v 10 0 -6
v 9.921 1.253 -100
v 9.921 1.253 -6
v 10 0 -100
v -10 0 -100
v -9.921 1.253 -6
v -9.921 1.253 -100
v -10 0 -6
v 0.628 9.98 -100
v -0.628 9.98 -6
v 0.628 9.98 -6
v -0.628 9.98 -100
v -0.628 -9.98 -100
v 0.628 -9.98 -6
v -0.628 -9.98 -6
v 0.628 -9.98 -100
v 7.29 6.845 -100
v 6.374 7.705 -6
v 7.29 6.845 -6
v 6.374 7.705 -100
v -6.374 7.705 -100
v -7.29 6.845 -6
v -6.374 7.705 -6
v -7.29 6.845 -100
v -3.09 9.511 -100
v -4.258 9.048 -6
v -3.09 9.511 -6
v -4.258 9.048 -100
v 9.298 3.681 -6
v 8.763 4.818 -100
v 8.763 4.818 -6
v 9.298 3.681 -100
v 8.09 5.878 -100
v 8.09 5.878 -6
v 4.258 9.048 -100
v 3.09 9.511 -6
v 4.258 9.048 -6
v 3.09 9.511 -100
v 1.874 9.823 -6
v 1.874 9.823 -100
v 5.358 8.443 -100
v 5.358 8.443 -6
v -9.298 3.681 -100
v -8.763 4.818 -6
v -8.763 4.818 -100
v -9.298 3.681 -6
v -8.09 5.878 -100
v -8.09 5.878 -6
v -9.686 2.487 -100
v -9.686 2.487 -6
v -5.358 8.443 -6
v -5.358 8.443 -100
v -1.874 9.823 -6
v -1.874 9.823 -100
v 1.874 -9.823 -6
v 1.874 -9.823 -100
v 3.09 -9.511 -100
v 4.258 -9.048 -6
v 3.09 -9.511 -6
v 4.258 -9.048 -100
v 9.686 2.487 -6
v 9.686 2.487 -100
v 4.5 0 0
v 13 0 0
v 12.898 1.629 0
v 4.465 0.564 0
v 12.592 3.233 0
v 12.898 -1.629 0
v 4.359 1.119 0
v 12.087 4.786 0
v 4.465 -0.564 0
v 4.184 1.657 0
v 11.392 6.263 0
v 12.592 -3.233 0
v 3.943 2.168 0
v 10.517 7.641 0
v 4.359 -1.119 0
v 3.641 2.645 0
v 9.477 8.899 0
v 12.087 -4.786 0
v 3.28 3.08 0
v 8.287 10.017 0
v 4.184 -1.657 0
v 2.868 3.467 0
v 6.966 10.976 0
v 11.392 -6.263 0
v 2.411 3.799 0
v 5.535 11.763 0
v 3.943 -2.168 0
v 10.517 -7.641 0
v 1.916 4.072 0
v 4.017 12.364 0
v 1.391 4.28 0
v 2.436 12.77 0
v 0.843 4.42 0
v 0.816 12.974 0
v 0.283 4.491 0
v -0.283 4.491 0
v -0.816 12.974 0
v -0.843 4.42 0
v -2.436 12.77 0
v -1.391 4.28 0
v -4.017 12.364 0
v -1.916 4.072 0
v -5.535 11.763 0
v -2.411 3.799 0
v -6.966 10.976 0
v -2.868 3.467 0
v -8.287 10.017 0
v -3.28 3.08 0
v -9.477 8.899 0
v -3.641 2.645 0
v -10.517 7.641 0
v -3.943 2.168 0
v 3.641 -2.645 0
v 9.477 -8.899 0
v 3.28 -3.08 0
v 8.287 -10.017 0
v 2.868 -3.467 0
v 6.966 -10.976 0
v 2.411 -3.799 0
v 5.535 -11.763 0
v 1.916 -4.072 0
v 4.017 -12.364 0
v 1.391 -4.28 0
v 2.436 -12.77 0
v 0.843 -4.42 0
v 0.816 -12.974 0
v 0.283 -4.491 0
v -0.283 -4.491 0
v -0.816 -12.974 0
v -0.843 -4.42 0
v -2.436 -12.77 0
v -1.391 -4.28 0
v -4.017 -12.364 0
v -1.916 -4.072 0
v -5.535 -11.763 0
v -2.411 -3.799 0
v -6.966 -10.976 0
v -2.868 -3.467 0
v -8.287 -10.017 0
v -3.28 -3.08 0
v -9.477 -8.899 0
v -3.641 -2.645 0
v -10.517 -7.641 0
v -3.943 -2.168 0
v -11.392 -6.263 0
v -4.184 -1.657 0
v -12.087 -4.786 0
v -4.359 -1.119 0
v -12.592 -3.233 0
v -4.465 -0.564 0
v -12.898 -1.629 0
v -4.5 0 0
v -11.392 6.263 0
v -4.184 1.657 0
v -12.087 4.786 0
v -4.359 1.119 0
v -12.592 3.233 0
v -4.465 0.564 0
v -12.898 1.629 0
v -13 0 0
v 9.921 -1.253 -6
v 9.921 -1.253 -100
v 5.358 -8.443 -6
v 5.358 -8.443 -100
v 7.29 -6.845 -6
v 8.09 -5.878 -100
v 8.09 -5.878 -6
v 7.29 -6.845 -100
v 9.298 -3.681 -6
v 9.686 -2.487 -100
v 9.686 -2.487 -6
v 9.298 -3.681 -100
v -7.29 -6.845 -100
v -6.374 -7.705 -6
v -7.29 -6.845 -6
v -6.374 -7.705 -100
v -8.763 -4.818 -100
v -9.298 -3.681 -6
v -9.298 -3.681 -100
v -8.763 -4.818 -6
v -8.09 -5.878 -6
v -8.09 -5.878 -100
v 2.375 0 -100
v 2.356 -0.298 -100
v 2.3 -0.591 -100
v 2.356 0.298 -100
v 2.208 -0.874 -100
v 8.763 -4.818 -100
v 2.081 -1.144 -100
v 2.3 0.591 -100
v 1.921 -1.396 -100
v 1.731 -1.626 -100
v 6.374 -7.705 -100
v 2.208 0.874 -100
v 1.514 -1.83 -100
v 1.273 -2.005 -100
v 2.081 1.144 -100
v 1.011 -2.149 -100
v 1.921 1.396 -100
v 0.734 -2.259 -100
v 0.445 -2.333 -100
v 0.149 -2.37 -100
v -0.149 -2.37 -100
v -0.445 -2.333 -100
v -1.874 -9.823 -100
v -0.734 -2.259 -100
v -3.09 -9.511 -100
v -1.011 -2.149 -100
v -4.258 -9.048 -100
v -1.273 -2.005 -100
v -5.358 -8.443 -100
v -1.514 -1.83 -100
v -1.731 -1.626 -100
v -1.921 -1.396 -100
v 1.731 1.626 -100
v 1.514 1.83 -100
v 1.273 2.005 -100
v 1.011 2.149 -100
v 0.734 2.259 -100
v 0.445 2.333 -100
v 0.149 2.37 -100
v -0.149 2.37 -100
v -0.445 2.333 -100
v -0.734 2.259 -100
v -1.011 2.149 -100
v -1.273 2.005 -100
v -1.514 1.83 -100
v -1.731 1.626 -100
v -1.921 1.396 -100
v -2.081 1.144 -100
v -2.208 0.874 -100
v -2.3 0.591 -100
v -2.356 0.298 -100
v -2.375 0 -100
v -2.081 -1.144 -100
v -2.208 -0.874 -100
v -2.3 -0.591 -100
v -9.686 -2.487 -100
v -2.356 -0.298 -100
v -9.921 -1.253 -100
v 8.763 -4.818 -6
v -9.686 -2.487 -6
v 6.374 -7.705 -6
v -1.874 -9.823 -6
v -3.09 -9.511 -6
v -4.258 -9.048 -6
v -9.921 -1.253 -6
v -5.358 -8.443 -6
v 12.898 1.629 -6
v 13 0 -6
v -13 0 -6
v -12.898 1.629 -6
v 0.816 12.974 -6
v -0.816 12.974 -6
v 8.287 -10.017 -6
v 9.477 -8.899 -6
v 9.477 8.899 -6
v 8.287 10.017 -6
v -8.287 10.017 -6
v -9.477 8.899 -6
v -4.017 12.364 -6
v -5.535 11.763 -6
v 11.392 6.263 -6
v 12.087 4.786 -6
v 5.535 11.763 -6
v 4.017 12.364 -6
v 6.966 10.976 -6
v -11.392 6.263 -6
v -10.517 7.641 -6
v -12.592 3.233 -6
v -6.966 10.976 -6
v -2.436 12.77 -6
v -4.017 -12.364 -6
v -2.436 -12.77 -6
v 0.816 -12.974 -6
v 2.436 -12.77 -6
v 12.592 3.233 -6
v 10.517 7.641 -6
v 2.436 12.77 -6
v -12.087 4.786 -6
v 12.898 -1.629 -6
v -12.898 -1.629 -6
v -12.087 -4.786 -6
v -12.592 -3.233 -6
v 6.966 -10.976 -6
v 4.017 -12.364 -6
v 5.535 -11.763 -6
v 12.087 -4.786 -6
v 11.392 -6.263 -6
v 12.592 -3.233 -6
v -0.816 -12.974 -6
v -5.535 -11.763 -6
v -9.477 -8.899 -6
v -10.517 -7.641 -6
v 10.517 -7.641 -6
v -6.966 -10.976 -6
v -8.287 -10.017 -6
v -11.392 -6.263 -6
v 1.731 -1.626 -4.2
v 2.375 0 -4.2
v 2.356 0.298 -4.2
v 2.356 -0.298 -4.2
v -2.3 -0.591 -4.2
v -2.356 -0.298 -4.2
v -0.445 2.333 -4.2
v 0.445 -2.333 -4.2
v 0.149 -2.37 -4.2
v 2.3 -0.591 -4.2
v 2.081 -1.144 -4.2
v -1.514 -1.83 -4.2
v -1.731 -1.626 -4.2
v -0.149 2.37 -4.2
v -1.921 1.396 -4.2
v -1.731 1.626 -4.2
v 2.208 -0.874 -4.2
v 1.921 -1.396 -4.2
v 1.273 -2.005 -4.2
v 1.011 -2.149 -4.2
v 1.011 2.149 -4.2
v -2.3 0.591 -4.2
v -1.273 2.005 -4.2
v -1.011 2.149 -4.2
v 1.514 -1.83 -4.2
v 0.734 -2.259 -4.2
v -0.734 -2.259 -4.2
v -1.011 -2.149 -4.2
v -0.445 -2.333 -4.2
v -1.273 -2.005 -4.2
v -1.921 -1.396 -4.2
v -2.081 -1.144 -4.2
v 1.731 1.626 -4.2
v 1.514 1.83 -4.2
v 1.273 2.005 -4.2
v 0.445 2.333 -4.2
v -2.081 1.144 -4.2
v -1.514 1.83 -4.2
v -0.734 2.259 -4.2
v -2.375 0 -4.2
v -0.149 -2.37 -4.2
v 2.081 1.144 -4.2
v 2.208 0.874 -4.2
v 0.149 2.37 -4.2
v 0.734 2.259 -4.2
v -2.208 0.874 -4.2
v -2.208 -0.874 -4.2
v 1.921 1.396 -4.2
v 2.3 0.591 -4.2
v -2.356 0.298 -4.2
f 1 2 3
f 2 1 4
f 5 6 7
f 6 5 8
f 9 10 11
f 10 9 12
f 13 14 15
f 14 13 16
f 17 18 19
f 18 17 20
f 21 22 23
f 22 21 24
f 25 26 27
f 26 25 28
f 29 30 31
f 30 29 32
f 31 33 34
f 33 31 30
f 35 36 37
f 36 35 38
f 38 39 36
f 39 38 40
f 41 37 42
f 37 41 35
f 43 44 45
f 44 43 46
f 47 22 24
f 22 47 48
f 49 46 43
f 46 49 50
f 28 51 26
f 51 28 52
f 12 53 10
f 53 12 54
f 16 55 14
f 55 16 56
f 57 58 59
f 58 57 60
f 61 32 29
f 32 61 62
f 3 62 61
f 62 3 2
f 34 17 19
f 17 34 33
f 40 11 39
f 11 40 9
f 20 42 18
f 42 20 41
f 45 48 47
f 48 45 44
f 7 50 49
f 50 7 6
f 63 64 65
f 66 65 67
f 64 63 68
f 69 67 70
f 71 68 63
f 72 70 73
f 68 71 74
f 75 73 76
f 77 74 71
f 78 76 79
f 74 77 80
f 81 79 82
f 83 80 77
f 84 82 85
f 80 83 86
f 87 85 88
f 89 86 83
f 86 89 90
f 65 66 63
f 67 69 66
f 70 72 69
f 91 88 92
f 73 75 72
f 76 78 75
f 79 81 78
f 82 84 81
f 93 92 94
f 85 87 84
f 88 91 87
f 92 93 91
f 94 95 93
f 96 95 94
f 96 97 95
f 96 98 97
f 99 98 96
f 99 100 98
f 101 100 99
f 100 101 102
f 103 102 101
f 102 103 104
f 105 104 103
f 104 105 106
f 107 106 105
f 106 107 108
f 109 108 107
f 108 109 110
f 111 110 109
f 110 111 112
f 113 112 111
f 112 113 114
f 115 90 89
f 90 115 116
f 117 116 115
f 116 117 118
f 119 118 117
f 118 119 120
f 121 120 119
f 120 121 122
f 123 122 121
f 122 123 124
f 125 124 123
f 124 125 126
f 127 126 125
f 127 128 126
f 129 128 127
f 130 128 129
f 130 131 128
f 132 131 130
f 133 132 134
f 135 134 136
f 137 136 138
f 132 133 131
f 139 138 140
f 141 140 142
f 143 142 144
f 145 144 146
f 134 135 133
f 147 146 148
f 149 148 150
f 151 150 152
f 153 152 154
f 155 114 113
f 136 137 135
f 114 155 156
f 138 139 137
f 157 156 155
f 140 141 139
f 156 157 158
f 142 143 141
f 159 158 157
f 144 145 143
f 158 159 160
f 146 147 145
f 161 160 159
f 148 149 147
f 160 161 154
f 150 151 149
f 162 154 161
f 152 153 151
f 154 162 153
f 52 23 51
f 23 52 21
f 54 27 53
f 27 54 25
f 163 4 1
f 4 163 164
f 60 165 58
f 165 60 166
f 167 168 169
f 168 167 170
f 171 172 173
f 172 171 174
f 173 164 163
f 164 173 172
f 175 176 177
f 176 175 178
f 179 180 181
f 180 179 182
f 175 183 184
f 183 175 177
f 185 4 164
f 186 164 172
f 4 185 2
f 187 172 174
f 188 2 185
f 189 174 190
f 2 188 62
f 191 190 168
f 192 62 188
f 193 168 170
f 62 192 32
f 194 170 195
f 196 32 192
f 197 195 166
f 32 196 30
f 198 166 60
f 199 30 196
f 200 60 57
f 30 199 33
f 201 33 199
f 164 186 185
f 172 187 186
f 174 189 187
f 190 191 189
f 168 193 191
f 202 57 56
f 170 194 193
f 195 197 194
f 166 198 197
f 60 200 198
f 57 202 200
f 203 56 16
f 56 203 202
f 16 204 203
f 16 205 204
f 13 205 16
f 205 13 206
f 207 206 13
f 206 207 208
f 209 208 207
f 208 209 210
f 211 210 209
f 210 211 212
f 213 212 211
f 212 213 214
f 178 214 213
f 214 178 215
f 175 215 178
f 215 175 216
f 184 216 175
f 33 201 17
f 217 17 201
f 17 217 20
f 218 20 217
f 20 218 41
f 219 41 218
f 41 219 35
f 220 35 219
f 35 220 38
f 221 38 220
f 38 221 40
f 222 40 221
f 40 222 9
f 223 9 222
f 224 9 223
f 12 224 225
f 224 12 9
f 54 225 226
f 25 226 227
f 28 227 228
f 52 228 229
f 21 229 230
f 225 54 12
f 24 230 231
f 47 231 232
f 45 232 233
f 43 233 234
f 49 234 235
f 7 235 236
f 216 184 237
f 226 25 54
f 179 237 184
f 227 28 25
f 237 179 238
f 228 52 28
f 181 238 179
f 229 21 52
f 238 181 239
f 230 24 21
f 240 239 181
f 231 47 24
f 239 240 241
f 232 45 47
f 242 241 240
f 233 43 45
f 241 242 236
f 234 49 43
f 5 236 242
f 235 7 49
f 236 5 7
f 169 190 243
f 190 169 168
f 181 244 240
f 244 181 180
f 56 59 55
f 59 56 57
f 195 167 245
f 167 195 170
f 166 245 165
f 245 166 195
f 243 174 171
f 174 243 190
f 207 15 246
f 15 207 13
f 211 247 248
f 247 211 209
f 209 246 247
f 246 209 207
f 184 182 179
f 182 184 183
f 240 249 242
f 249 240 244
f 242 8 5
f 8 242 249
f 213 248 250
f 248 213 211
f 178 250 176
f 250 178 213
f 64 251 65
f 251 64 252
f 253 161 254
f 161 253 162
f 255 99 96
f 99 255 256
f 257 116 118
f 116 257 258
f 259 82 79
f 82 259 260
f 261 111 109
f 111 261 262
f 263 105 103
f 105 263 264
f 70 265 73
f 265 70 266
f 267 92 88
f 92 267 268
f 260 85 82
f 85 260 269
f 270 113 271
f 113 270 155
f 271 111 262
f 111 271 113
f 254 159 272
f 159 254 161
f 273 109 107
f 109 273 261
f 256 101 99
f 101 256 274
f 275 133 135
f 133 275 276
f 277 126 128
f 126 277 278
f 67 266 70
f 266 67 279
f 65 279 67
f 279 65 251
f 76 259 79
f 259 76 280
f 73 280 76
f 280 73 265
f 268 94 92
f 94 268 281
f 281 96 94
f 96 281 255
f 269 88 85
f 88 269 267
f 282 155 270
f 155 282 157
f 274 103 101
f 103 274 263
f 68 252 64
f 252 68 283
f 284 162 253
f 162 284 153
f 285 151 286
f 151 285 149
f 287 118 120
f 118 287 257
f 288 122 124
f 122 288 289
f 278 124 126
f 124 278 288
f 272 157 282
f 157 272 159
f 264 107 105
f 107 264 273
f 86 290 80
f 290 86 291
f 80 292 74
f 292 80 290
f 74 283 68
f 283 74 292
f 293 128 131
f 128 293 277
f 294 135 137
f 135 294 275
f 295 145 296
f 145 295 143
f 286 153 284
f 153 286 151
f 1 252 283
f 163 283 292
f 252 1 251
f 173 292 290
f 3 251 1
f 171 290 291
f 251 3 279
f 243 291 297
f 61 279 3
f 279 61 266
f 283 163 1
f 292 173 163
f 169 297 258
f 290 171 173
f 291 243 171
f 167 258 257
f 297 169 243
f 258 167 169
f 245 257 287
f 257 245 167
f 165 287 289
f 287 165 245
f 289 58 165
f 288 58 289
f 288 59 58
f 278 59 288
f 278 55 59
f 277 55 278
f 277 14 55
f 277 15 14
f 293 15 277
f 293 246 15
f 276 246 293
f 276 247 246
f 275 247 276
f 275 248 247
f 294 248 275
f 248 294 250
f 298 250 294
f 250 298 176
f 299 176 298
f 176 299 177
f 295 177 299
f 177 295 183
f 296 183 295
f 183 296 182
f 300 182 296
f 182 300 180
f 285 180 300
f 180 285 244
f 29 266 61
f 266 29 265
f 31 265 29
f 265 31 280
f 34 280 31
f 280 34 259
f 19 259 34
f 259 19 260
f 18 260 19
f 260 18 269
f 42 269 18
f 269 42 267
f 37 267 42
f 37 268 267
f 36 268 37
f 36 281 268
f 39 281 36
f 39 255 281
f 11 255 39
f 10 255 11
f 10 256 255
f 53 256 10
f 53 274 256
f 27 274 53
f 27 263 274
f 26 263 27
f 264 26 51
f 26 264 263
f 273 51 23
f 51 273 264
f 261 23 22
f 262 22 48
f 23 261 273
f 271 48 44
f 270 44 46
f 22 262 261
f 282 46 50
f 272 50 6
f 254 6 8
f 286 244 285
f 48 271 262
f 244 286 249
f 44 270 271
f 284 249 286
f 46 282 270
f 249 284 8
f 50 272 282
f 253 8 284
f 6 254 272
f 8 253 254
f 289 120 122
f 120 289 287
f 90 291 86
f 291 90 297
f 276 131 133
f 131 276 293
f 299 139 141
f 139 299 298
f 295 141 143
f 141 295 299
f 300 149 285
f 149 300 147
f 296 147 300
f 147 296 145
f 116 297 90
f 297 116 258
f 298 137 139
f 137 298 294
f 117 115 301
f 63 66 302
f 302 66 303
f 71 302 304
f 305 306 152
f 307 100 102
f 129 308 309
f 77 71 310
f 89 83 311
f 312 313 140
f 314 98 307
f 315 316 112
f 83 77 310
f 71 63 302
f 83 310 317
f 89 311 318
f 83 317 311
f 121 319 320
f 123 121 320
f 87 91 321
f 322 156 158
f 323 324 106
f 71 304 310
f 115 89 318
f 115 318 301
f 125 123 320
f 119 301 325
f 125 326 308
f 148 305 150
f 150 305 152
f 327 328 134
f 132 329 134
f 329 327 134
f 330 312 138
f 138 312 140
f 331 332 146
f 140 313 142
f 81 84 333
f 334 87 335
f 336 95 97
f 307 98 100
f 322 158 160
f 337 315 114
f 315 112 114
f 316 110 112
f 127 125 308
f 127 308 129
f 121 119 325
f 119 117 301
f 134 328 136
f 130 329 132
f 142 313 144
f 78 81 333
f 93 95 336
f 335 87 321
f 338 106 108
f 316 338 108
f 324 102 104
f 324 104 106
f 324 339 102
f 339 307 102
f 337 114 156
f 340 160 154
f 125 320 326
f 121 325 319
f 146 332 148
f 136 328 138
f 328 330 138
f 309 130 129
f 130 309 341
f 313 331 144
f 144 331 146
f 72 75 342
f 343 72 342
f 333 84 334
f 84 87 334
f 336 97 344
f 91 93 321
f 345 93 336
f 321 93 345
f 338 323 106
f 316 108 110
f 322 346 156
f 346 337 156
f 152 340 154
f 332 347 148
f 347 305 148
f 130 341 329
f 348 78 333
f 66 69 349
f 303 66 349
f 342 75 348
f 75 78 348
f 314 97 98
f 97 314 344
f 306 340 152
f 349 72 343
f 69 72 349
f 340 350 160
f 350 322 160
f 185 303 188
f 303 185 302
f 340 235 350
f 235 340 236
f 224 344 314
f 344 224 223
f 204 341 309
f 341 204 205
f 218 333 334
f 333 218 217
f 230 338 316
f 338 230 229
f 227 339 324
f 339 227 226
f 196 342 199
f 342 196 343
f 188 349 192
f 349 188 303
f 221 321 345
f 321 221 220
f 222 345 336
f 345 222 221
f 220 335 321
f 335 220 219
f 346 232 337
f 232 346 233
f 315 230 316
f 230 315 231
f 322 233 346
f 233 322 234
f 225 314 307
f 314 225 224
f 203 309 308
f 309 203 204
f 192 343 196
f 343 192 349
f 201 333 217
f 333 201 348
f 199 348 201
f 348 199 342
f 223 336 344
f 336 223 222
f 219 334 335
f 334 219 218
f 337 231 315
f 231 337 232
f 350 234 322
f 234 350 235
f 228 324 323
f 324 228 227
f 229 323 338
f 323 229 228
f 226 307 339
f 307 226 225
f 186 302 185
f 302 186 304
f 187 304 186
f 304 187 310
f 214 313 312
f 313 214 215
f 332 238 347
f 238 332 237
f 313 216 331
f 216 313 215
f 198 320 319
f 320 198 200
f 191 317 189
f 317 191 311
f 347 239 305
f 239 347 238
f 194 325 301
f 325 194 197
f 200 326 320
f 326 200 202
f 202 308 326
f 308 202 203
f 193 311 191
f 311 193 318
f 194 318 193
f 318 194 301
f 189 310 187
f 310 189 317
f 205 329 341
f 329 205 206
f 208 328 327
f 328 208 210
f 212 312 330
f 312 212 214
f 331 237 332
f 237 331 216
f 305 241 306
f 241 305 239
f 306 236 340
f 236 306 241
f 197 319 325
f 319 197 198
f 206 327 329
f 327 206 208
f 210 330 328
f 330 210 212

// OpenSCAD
$fn = 50;


difference() {
	union() {
		translate(v = [0, 0, -100.0000000000]) {
			cylinder(h = 100, r = 10.0000000000);
		}
		translate(v = [0, 0, -6.0000000000]) {
			cylinder(h = 6, r = 13.0000000000);
		}
	}
	union() {
		translate(v = [0, 0, 0]) {
			rotate(a = [0, 0, 0]) {
				difference() {
					union() {
						#translate(v = [0, 0, -100.0000000000]) {
							cylinder(h = 100, r = 2.2500000000);
						}
						#translate(v = [0, 0, -4.2000000000]) {
							cylinder(h = 4.2000000000, r1 = 2.3750000000, r2 = 4.5000000000);
						}
						#translate(v = [0, 0, -100.0000000000]) {
							cylinder(h = 100, r = 2.3750000000);
						}
						#translate(v = [0, 0, -100.0000000000]) {
							cylinder(h = 100, r = 2.2500000000);
						}
					}
					union();
				}
			}
		}
	}
}
